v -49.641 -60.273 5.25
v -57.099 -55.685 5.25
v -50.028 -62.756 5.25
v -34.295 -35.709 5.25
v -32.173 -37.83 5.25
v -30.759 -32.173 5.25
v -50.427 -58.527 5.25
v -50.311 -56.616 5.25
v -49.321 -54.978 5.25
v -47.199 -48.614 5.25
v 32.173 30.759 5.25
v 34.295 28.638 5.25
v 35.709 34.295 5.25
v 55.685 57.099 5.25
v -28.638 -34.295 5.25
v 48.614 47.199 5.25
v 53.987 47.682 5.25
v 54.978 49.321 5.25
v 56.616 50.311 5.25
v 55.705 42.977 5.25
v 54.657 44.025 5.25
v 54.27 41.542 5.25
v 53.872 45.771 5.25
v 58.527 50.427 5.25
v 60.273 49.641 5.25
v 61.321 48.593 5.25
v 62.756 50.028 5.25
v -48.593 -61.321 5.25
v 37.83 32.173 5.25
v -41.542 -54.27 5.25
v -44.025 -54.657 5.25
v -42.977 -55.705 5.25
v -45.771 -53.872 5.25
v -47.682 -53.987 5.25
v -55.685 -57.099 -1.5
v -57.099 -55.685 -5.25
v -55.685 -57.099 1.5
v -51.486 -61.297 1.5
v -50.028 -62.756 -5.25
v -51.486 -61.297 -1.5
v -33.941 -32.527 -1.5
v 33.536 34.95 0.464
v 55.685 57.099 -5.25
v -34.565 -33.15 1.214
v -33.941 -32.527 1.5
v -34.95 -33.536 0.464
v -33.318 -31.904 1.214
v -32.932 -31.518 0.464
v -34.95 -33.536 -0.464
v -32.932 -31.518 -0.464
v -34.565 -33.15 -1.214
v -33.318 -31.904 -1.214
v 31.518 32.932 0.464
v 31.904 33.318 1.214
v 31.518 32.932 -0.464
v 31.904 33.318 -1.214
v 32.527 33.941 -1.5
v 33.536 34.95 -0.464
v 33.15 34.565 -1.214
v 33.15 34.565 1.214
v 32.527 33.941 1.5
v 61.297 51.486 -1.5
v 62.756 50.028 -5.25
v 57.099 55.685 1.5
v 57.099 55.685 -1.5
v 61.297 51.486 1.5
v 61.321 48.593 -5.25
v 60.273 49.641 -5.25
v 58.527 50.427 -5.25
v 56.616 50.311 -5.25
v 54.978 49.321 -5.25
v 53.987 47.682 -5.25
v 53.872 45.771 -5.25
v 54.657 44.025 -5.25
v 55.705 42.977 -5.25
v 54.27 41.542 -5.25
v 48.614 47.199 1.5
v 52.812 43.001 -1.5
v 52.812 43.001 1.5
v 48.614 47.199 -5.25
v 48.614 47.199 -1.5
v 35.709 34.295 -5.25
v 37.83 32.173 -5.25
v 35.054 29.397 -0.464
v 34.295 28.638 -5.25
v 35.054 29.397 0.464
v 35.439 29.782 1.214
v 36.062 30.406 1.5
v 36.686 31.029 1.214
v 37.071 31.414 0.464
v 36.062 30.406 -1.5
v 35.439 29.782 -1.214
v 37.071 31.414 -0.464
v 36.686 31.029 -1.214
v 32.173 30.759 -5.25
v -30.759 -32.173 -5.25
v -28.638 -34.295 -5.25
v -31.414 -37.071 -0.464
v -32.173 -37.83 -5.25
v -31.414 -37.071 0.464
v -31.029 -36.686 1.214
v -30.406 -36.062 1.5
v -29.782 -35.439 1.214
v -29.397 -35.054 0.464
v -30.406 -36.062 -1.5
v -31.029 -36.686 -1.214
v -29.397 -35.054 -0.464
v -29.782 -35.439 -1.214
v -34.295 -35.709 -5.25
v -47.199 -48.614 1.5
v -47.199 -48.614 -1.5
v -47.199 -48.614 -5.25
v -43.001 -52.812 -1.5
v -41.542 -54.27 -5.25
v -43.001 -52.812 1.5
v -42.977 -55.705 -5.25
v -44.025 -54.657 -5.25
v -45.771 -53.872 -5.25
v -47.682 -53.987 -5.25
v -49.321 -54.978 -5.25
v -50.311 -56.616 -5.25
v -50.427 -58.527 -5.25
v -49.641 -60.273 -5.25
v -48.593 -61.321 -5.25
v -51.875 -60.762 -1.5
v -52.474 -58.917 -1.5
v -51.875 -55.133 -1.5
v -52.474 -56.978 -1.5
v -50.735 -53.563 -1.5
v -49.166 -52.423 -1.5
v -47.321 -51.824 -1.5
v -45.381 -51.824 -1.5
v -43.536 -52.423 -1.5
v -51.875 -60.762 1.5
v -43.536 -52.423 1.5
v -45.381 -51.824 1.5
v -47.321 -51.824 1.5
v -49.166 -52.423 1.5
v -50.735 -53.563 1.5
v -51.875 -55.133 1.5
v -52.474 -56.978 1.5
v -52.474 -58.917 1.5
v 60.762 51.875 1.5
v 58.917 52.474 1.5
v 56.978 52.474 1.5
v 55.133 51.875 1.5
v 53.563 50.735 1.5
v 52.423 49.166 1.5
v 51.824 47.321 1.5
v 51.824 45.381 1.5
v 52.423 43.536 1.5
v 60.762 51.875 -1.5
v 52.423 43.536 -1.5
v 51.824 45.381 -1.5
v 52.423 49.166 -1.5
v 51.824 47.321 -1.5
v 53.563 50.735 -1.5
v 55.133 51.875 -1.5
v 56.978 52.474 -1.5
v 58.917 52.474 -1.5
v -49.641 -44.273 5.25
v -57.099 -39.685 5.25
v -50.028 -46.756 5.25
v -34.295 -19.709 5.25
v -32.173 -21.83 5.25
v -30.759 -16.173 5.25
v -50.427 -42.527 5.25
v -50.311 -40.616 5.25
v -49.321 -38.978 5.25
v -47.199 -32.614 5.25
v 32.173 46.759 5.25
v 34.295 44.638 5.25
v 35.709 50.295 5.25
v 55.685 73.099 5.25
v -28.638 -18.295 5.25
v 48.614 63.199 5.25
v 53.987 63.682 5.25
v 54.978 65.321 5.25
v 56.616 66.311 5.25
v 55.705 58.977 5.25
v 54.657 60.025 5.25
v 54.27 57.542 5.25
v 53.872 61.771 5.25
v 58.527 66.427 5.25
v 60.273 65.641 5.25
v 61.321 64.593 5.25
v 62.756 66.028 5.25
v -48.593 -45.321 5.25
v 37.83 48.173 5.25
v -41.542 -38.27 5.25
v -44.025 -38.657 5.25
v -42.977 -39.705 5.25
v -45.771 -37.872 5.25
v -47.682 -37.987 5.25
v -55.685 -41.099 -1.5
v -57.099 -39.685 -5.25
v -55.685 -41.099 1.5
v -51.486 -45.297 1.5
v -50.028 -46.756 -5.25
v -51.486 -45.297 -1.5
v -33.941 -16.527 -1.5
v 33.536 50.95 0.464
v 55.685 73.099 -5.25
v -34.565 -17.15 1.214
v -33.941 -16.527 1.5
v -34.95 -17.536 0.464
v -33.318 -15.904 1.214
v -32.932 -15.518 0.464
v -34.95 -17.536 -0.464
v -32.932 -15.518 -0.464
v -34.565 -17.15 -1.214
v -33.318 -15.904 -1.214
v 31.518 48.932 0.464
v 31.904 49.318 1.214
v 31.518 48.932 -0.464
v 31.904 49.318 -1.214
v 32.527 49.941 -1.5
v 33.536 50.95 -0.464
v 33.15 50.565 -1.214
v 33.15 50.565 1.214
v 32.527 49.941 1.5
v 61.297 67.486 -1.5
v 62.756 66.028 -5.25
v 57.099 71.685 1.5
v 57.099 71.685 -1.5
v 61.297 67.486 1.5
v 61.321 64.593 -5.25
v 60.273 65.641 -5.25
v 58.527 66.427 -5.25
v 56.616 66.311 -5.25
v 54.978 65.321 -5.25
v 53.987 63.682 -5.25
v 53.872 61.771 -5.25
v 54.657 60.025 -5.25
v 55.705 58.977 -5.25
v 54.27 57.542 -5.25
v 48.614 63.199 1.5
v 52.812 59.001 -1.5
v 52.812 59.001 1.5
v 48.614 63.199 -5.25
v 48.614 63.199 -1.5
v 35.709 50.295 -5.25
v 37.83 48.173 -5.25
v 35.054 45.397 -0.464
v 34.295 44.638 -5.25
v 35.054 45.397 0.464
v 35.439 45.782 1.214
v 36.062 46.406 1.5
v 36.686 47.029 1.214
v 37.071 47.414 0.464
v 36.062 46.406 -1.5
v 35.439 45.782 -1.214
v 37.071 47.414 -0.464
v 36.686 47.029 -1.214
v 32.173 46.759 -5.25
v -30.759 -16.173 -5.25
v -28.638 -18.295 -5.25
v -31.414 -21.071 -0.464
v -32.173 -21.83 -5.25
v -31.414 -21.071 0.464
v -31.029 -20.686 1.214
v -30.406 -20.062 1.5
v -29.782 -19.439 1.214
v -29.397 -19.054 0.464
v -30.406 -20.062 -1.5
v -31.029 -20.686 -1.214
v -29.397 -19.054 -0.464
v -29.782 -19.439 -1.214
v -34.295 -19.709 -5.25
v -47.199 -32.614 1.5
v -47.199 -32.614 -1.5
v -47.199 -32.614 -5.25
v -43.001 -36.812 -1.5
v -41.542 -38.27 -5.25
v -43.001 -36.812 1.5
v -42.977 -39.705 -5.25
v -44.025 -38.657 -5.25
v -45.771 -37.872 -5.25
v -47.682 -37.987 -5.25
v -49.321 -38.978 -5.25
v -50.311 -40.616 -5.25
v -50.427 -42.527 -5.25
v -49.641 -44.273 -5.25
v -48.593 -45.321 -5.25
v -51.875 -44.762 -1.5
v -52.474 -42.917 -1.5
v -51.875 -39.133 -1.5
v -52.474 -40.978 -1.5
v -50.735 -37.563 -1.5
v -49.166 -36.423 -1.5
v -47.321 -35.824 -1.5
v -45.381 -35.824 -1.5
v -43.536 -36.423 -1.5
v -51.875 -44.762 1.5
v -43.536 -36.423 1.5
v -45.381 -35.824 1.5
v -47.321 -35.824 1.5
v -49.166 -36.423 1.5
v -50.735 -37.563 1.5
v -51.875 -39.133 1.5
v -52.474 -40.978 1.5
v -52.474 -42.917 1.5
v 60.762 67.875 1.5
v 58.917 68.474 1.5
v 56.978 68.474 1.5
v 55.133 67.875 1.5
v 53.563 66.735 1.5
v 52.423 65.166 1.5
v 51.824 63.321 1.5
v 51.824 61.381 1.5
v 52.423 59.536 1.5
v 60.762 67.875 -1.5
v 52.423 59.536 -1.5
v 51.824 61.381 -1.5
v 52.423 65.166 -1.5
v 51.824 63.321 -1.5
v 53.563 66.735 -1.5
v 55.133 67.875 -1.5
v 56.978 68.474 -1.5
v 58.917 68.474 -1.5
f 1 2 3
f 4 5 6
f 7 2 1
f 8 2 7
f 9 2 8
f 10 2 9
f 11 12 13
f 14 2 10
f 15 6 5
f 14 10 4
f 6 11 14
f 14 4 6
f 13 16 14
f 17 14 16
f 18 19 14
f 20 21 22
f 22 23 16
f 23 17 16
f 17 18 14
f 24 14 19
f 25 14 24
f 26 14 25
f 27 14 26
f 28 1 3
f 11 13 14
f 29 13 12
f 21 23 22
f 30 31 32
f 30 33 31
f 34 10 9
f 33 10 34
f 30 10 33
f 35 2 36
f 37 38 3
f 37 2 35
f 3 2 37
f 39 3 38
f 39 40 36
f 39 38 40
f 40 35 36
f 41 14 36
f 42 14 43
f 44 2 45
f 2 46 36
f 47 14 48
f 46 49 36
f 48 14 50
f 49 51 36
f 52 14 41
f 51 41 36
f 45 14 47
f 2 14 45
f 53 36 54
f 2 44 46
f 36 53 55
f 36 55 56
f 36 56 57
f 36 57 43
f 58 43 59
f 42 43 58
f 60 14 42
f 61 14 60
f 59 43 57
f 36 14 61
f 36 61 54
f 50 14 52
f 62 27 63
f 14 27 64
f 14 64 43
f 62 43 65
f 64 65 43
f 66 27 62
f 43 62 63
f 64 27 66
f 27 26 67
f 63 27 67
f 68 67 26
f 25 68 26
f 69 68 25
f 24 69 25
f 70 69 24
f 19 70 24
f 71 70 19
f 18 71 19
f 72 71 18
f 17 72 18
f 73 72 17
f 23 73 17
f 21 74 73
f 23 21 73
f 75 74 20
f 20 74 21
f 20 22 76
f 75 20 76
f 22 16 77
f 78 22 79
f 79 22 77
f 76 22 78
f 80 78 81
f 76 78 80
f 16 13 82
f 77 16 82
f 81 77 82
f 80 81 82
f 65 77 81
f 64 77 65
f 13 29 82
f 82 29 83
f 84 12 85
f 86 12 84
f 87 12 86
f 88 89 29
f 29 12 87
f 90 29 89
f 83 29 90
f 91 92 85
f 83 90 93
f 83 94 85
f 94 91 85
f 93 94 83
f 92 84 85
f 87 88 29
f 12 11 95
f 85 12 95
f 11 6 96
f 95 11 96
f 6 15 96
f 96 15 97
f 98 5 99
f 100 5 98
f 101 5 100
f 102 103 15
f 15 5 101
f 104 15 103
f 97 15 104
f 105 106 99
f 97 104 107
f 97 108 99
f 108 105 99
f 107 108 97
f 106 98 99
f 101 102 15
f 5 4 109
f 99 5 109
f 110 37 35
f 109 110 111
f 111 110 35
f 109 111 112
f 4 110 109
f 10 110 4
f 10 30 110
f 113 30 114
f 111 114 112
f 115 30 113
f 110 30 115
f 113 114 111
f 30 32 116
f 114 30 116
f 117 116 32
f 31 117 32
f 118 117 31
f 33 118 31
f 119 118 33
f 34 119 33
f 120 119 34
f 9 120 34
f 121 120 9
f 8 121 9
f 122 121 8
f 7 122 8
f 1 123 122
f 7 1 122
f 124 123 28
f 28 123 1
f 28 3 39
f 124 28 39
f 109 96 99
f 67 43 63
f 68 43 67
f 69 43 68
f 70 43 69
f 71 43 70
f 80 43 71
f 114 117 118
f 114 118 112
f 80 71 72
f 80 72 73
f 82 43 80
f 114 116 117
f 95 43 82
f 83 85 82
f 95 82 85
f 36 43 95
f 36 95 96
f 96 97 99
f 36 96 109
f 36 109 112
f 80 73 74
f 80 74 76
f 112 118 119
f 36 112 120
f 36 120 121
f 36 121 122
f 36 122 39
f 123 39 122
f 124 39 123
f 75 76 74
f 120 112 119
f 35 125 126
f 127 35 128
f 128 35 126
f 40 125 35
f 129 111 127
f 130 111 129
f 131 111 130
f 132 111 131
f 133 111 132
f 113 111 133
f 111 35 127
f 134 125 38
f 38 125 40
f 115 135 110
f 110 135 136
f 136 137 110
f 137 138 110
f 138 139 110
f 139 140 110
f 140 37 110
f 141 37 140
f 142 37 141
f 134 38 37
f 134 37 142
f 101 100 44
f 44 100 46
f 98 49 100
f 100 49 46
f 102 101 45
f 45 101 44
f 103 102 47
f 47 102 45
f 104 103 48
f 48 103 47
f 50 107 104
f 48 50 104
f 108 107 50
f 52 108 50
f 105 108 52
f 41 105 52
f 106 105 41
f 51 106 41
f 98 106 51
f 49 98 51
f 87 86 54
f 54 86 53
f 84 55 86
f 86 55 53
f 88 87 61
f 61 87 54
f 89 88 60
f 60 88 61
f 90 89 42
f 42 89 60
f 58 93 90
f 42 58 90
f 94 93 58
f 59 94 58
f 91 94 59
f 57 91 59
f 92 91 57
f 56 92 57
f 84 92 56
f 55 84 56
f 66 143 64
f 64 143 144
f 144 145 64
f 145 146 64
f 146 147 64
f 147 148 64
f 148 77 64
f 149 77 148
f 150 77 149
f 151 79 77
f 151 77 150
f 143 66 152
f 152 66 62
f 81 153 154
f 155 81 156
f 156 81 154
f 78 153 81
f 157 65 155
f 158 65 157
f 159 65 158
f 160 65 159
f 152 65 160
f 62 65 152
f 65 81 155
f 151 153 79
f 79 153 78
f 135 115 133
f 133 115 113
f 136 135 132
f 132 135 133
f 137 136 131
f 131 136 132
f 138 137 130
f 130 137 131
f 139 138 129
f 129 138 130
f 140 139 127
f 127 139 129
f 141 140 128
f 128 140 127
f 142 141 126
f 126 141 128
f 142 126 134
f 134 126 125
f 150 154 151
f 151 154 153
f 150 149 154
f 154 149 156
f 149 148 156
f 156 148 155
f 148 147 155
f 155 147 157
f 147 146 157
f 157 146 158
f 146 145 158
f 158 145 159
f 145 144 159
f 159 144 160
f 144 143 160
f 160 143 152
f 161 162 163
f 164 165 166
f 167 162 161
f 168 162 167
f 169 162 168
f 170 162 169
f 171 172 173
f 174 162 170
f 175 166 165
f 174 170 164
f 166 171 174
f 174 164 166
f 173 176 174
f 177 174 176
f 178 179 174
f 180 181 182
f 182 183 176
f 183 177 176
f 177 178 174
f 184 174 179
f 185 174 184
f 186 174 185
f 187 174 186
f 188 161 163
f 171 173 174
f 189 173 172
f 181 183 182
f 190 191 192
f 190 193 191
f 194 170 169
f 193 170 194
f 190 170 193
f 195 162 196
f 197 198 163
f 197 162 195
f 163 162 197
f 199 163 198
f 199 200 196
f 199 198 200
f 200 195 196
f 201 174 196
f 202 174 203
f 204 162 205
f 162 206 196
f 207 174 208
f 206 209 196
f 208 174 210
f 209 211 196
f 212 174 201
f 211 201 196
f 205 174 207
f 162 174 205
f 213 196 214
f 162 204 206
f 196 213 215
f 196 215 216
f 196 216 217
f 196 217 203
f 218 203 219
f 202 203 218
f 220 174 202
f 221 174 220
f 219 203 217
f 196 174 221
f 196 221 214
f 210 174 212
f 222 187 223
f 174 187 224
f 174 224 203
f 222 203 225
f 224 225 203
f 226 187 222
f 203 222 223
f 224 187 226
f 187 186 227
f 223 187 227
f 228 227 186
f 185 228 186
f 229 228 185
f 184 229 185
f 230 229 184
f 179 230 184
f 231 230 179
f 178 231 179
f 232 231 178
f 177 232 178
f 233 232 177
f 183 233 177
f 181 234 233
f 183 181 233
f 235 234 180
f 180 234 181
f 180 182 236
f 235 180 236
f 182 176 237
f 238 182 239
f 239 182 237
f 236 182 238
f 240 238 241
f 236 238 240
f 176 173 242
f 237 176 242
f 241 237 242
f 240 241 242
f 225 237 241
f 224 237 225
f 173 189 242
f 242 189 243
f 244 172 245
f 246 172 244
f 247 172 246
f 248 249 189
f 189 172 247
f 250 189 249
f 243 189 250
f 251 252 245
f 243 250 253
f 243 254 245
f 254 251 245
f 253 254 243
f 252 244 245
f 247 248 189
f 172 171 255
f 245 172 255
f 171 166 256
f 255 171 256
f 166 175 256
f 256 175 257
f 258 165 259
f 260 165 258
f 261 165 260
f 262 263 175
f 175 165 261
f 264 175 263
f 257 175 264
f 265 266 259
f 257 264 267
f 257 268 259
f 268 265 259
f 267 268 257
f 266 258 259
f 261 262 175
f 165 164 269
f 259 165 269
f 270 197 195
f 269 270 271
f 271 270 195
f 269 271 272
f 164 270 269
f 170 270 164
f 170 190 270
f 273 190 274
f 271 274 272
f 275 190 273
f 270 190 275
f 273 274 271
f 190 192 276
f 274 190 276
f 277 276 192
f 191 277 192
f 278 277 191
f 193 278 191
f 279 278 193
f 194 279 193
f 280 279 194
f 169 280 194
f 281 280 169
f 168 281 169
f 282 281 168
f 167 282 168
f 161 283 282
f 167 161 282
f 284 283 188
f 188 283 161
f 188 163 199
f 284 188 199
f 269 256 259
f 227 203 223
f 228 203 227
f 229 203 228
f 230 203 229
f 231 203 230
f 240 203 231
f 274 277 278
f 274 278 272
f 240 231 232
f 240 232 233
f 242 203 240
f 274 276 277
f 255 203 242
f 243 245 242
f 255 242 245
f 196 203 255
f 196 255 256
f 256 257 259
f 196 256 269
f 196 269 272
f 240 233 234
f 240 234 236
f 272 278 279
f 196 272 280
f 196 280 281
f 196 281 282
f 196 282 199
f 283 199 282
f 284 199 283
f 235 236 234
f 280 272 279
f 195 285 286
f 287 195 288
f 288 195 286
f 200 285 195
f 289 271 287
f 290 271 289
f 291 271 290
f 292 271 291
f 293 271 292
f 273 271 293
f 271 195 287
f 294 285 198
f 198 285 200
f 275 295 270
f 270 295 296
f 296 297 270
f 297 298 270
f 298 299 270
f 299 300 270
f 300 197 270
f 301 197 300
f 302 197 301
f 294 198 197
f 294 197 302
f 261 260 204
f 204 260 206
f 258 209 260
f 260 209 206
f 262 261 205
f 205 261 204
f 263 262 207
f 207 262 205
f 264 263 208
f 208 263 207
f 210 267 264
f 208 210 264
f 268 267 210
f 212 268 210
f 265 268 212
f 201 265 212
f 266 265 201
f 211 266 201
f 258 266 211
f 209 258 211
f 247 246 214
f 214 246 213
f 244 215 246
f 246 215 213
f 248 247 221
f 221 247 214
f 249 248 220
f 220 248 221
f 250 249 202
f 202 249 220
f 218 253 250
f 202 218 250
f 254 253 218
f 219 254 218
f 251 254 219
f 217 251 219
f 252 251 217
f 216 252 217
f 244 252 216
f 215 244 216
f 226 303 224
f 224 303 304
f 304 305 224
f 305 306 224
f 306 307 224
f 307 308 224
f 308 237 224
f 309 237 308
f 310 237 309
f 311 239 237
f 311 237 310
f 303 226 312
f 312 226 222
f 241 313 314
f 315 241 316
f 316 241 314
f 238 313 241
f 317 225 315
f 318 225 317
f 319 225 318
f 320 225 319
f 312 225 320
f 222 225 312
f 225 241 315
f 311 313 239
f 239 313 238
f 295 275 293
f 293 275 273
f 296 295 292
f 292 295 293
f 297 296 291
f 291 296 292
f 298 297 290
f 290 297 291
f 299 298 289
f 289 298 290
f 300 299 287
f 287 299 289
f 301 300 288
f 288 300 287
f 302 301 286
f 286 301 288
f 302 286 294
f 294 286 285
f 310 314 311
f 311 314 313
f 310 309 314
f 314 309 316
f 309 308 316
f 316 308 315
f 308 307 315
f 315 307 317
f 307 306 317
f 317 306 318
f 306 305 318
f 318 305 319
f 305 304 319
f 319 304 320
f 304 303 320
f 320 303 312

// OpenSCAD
wall_thickness = 2;
M8_dia = 8;
M3_dia = 3;
M3_nut_dia = 5.5;
// distance between holes on electronics
hole_distance = 94;
// distance between rods on printer
rod_distance = 147.5;


module rod_catch(M8_dia = 8,wall_thickness = 2,length = 10,zip_width = 2){
	difference(){
		cube(size = [length,M8_dia + 2*wall_thickness,M8_dia/2 + 2*wall_thickness],center=true);
		translate([0,0,1.5*wall_thickness])rotate([0,90,0])hull(){
			cylinder(r=M8_dia/2,h=length+1,center=true);
			translate([-3,0,0])cylinder(r=M8_dia/2,h=length+1,center=true);
		}
		translate([0,0,1.6*wall_thickness])rotate([0,90,0]){
			difference(){
				cylinder(r = M8_dia/2 + 3*wall_thickness,h=zip_width,center=true);
				cylinder(r = M8_dia/2 + wall_thickness + 0.2,h=zip_width,center=true);
			}
		}
	}
}

module parametric_holder(M8_dia = 8, M3_dia = 3, M3_nut_dia = 5.5,wall_thickness = 2,rod_distance = 150,hole_distance = 100, zip_width = 2){
	width = zip_width + M3_nut_dia + wall_thickness;

	difference(){
		union(){
			cube(size = [width, rod_distance + M8_dia + wall_thickness*2, wall_thickness],center = true);
			translate([0,-hole_distance/2,wall_thickness])
			cube(size = [width, M3_dia + wall_thickness, 2*wall_thickness],center = true);
			translate([0,hole_distance/2,wall_thickness])
			cube(size = [width, M3_dia + wall_thickness, 2*wall_thickness],center = true);
			}
		//screw holes
		translate([0,-hole_distance/2,wall_thickness])cylinder(r = M3_dia/2, h = 4*wall_thickness, center = true, $fn=10);
	translate([0,hole_distance/2,wall_thickness])cylinder(r = M3_dia/2, h = 4*wall_thickness, center = true, $fn=10);
	}

	translate([0,rod_distance/2,wall_thickness*2.5])rod_catch(M8_dia = M8_dia,wall_thickness = wall_thickness,length = width, zip_width = zip_width);
	translate([0,-rod_distance/2,wall_thickness*2.5])rod_catch(M8_dia = M8_dia,wall_thickness = wall_thickness,length = width, zip_width = zip_width);
}

rotate([0,90,-45])parametric_holder(M8_dia,M3_dia,M3_nut_dia,wall_thickness,rod_distance,hole_distance,3);

translate([0,16,0])rotate([0,90,-45])parametric_holder(M8_dia,M3_dia,M3_nut_dia,wall_thickness,rod_distance,hole_distance,3);
